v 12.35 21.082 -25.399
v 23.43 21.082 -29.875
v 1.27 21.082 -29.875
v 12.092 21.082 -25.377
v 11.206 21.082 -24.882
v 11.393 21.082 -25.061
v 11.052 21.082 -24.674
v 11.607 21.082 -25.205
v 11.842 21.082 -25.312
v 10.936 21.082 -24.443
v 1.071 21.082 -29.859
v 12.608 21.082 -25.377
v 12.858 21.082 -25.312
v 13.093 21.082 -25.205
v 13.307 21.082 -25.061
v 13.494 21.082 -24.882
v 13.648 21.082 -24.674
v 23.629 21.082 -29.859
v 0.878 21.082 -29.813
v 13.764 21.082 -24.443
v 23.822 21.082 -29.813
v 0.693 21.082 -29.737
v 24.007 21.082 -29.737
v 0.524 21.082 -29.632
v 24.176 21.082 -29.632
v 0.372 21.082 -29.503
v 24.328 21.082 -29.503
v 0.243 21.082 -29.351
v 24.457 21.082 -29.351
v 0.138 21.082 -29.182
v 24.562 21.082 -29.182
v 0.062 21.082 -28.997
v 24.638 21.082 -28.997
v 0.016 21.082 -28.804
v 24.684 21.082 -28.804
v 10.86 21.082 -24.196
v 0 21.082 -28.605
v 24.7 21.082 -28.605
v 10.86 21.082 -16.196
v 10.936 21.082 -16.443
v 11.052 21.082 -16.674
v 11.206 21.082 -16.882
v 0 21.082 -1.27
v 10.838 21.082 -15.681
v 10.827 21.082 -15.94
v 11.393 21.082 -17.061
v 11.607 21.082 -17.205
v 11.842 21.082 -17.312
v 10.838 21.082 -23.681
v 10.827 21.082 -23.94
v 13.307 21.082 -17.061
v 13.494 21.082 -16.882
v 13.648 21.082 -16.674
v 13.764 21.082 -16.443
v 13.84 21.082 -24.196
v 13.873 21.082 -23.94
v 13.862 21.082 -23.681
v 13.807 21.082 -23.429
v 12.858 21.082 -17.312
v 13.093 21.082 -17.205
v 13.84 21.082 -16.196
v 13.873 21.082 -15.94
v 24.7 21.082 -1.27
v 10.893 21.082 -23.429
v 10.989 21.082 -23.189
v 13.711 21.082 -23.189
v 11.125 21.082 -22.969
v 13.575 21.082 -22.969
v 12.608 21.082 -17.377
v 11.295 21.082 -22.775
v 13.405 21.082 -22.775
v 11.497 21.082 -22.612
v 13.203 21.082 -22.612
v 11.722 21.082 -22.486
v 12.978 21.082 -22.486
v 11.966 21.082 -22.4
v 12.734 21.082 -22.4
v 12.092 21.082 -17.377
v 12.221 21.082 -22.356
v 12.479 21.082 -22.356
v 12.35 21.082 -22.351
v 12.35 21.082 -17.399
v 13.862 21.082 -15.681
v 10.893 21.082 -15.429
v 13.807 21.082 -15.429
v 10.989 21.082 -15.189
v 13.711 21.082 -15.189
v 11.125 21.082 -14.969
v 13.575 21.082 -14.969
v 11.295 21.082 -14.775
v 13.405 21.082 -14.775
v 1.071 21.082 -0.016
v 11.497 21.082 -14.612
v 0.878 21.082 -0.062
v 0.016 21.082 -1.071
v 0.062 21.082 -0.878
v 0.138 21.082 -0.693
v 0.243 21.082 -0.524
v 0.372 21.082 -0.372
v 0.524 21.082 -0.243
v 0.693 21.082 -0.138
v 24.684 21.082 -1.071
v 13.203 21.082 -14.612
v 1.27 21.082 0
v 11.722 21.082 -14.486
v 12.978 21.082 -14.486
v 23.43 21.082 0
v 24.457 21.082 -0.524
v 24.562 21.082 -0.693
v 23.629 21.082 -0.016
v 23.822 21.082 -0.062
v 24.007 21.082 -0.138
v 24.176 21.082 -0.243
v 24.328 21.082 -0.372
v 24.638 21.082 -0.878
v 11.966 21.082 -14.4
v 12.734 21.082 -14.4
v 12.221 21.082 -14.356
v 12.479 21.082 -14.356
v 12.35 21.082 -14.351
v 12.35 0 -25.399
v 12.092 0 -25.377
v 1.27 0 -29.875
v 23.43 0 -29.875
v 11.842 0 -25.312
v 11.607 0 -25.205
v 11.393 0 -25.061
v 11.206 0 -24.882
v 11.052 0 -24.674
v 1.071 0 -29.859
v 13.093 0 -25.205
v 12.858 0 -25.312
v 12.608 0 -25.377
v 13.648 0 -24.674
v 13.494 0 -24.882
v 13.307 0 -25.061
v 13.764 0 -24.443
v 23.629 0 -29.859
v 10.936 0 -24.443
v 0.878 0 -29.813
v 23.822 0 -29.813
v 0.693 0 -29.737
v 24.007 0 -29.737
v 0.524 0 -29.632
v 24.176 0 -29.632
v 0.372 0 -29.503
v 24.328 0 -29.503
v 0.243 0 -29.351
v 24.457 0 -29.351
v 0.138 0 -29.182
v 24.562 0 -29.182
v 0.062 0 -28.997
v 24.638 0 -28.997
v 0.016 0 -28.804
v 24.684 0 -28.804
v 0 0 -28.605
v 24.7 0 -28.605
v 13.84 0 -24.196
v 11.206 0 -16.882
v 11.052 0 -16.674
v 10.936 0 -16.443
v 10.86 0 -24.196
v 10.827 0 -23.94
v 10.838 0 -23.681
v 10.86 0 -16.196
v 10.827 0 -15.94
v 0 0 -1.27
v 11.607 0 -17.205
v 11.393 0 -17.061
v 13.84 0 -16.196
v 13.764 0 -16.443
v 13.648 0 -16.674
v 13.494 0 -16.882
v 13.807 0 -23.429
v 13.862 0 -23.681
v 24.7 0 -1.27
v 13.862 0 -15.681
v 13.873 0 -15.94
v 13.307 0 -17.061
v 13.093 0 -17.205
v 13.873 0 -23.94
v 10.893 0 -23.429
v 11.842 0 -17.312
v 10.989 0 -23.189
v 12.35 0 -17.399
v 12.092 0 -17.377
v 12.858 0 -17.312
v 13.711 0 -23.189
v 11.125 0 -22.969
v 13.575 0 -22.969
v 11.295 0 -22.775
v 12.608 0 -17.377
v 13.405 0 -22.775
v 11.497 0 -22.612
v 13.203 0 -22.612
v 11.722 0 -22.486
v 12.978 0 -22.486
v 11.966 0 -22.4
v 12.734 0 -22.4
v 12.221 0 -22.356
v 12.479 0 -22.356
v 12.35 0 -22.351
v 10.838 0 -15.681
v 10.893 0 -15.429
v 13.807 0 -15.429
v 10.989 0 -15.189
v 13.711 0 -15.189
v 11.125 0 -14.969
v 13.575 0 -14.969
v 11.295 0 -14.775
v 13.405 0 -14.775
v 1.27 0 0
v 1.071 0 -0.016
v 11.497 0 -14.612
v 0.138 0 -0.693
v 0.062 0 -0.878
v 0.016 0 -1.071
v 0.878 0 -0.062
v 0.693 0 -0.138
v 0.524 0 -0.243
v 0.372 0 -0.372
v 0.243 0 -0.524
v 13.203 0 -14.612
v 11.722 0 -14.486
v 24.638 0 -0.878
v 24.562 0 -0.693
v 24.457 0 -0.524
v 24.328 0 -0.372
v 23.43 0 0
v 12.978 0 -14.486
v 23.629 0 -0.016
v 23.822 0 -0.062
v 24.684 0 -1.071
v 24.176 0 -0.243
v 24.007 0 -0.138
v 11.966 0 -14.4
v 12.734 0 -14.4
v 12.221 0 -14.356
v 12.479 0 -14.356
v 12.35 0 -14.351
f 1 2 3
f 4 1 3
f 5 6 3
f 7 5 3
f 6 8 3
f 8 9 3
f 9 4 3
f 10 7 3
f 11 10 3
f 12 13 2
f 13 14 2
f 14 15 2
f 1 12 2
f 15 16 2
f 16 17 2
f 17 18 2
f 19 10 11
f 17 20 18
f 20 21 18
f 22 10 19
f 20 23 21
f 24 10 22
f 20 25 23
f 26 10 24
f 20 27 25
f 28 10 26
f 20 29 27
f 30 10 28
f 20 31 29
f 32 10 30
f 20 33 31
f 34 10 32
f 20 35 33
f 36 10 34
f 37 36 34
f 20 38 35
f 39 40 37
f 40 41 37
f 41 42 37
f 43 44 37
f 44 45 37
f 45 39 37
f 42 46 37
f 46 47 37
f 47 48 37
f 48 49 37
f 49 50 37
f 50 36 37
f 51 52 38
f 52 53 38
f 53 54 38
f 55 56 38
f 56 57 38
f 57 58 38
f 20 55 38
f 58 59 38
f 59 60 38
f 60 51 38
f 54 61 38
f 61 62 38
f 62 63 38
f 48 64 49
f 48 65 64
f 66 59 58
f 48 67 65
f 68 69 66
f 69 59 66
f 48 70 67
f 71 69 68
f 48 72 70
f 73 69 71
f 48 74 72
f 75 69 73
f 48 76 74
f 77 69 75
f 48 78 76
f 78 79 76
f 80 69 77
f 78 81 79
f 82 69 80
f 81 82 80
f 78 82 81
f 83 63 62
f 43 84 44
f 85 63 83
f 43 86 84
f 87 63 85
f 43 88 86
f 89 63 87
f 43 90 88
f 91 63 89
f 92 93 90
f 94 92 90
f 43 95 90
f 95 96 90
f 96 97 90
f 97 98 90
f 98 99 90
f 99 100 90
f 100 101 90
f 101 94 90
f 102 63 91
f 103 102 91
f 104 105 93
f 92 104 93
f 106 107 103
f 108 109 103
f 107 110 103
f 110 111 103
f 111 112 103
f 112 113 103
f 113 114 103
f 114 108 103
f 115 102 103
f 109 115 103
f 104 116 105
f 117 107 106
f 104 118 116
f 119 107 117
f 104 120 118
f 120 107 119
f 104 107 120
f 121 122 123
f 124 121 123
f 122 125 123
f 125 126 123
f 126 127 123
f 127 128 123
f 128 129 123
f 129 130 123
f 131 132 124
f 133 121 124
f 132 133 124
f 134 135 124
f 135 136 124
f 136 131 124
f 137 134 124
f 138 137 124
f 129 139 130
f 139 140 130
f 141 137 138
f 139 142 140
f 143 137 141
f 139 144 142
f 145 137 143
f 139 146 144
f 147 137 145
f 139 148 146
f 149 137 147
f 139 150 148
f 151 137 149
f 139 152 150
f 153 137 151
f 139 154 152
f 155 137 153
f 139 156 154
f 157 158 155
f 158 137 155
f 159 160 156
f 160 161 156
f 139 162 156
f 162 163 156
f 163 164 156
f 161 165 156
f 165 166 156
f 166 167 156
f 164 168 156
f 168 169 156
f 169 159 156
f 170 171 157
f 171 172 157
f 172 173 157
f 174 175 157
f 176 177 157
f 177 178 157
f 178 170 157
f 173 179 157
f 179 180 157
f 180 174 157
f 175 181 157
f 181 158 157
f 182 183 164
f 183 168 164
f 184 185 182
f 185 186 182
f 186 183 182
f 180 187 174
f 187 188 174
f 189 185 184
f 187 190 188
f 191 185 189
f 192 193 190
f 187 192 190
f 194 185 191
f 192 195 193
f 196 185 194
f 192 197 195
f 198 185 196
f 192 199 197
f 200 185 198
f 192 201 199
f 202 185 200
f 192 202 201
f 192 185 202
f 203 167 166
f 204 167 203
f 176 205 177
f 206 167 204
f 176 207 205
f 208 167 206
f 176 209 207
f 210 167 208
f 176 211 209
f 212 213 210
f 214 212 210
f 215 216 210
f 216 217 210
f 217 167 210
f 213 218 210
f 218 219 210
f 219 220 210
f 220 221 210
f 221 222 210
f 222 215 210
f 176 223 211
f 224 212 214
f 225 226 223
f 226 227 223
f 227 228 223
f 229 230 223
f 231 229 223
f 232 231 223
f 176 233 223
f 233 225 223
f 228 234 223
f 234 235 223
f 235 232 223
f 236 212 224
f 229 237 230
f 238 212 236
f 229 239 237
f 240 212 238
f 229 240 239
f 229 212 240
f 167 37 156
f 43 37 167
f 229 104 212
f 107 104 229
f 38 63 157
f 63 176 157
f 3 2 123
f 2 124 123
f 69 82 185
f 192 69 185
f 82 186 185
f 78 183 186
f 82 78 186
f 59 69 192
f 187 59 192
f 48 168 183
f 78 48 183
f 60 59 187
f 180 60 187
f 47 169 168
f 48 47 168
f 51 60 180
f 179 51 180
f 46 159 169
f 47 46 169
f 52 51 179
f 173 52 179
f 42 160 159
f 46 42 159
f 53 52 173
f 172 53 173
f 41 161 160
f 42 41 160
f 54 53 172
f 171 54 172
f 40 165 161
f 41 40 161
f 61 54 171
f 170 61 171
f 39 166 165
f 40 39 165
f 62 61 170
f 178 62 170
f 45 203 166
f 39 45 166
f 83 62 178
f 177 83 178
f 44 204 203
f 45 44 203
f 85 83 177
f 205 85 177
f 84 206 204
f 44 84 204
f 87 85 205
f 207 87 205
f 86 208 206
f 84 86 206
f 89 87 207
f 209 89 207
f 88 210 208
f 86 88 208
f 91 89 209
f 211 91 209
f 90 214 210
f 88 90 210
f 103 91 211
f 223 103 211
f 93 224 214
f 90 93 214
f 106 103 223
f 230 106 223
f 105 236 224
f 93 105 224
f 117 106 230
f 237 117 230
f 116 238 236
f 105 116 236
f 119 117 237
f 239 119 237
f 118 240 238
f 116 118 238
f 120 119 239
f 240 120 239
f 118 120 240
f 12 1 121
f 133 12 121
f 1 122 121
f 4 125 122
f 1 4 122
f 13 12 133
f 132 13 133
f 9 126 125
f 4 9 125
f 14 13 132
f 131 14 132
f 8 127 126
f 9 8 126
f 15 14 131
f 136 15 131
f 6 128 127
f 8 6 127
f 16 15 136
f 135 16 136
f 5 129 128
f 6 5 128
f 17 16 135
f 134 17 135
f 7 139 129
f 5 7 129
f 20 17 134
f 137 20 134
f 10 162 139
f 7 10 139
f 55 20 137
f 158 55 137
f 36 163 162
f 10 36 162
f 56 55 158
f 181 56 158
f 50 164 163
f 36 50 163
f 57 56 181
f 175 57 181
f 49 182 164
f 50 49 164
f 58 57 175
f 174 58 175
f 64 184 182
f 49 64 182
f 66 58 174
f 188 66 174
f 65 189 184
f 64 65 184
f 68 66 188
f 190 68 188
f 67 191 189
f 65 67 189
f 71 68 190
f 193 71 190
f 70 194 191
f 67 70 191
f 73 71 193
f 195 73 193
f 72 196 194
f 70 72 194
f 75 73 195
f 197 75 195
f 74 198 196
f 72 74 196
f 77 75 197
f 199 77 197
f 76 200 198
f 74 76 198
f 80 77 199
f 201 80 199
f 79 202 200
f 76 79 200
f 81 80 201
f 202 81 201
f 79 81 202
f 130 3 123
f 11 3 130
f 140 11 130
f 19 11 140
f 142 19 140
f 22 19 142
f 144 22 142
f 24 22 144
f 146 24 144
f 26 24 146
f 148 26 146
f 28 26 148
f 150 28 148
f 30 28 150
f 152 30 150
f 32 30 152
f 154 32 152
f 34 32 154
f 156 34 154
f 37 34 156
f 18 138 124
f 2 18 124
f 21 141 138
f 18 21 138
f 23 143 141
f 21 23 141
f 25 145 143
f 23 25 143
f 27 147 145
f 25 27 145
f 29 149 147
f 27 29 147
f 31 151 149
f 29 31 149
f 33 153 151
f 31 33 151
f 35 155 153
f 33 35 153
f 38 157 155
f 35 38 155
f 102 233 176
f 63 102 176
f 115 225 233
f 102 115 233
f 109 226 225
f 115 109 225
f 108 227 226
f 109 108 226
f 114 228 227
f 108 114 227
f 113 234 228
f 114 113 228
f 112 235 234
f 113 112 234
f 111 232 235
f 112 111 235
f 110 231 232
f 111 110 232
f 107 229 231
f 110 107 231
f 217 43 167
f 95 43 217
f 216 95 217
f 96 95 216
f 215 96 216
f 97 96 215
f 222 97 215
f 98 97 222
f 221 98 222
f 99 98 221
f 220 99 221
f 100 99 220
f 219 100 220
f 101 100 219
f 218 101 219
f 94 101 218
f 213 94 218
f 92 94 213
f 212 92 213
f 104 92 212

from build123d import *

# Parameters (mm, degrees)
SKETCH1_W           = 24.699999876
SKETCH1_H           = 29.87499994
SKETCH1_R           = 1.524
BOSS_EXTRUDE1_DEPTH = 21.082
FILLET1_R           = 1.27


with BuildPart() as part:
    # Sketch1 → Boss-Extrude1 (new body)
    with BuildSketch(Plane(origin=(0, 0, 0), x_dir=(1, 0, 0), z_dir=(0, 1, 0))):
        with Locations((12.349999938, 14.93749997)):
            Rectangle(SKETCH1_W, SKETCH1_H)
        with Locations((12.349999938, 15.875)):
            Circle(SKETCH1_R, mode=Mode.SUBTRACT)
        with Locations((12.349999938, 23.875000002)):
            Circle(SKETCH1_R, mode=Mode.SUBTRACT)
    extrude(amount=BOSS_EXTRUDE1_DEPTH)

    # Fillet1
    fillet1_edges = [part.edges().sort_by_distance(p)[0] for p in [
        (0, 10.541, -29.87499994),
        (24.699999876, 10.541, -29.87499994),
        (24.699999876, 10.541, 0),
        (0, 10.541, 0),
    ]]
    fillet(fillet1_edges, radius=FILLET1_R)


solid = part.part
